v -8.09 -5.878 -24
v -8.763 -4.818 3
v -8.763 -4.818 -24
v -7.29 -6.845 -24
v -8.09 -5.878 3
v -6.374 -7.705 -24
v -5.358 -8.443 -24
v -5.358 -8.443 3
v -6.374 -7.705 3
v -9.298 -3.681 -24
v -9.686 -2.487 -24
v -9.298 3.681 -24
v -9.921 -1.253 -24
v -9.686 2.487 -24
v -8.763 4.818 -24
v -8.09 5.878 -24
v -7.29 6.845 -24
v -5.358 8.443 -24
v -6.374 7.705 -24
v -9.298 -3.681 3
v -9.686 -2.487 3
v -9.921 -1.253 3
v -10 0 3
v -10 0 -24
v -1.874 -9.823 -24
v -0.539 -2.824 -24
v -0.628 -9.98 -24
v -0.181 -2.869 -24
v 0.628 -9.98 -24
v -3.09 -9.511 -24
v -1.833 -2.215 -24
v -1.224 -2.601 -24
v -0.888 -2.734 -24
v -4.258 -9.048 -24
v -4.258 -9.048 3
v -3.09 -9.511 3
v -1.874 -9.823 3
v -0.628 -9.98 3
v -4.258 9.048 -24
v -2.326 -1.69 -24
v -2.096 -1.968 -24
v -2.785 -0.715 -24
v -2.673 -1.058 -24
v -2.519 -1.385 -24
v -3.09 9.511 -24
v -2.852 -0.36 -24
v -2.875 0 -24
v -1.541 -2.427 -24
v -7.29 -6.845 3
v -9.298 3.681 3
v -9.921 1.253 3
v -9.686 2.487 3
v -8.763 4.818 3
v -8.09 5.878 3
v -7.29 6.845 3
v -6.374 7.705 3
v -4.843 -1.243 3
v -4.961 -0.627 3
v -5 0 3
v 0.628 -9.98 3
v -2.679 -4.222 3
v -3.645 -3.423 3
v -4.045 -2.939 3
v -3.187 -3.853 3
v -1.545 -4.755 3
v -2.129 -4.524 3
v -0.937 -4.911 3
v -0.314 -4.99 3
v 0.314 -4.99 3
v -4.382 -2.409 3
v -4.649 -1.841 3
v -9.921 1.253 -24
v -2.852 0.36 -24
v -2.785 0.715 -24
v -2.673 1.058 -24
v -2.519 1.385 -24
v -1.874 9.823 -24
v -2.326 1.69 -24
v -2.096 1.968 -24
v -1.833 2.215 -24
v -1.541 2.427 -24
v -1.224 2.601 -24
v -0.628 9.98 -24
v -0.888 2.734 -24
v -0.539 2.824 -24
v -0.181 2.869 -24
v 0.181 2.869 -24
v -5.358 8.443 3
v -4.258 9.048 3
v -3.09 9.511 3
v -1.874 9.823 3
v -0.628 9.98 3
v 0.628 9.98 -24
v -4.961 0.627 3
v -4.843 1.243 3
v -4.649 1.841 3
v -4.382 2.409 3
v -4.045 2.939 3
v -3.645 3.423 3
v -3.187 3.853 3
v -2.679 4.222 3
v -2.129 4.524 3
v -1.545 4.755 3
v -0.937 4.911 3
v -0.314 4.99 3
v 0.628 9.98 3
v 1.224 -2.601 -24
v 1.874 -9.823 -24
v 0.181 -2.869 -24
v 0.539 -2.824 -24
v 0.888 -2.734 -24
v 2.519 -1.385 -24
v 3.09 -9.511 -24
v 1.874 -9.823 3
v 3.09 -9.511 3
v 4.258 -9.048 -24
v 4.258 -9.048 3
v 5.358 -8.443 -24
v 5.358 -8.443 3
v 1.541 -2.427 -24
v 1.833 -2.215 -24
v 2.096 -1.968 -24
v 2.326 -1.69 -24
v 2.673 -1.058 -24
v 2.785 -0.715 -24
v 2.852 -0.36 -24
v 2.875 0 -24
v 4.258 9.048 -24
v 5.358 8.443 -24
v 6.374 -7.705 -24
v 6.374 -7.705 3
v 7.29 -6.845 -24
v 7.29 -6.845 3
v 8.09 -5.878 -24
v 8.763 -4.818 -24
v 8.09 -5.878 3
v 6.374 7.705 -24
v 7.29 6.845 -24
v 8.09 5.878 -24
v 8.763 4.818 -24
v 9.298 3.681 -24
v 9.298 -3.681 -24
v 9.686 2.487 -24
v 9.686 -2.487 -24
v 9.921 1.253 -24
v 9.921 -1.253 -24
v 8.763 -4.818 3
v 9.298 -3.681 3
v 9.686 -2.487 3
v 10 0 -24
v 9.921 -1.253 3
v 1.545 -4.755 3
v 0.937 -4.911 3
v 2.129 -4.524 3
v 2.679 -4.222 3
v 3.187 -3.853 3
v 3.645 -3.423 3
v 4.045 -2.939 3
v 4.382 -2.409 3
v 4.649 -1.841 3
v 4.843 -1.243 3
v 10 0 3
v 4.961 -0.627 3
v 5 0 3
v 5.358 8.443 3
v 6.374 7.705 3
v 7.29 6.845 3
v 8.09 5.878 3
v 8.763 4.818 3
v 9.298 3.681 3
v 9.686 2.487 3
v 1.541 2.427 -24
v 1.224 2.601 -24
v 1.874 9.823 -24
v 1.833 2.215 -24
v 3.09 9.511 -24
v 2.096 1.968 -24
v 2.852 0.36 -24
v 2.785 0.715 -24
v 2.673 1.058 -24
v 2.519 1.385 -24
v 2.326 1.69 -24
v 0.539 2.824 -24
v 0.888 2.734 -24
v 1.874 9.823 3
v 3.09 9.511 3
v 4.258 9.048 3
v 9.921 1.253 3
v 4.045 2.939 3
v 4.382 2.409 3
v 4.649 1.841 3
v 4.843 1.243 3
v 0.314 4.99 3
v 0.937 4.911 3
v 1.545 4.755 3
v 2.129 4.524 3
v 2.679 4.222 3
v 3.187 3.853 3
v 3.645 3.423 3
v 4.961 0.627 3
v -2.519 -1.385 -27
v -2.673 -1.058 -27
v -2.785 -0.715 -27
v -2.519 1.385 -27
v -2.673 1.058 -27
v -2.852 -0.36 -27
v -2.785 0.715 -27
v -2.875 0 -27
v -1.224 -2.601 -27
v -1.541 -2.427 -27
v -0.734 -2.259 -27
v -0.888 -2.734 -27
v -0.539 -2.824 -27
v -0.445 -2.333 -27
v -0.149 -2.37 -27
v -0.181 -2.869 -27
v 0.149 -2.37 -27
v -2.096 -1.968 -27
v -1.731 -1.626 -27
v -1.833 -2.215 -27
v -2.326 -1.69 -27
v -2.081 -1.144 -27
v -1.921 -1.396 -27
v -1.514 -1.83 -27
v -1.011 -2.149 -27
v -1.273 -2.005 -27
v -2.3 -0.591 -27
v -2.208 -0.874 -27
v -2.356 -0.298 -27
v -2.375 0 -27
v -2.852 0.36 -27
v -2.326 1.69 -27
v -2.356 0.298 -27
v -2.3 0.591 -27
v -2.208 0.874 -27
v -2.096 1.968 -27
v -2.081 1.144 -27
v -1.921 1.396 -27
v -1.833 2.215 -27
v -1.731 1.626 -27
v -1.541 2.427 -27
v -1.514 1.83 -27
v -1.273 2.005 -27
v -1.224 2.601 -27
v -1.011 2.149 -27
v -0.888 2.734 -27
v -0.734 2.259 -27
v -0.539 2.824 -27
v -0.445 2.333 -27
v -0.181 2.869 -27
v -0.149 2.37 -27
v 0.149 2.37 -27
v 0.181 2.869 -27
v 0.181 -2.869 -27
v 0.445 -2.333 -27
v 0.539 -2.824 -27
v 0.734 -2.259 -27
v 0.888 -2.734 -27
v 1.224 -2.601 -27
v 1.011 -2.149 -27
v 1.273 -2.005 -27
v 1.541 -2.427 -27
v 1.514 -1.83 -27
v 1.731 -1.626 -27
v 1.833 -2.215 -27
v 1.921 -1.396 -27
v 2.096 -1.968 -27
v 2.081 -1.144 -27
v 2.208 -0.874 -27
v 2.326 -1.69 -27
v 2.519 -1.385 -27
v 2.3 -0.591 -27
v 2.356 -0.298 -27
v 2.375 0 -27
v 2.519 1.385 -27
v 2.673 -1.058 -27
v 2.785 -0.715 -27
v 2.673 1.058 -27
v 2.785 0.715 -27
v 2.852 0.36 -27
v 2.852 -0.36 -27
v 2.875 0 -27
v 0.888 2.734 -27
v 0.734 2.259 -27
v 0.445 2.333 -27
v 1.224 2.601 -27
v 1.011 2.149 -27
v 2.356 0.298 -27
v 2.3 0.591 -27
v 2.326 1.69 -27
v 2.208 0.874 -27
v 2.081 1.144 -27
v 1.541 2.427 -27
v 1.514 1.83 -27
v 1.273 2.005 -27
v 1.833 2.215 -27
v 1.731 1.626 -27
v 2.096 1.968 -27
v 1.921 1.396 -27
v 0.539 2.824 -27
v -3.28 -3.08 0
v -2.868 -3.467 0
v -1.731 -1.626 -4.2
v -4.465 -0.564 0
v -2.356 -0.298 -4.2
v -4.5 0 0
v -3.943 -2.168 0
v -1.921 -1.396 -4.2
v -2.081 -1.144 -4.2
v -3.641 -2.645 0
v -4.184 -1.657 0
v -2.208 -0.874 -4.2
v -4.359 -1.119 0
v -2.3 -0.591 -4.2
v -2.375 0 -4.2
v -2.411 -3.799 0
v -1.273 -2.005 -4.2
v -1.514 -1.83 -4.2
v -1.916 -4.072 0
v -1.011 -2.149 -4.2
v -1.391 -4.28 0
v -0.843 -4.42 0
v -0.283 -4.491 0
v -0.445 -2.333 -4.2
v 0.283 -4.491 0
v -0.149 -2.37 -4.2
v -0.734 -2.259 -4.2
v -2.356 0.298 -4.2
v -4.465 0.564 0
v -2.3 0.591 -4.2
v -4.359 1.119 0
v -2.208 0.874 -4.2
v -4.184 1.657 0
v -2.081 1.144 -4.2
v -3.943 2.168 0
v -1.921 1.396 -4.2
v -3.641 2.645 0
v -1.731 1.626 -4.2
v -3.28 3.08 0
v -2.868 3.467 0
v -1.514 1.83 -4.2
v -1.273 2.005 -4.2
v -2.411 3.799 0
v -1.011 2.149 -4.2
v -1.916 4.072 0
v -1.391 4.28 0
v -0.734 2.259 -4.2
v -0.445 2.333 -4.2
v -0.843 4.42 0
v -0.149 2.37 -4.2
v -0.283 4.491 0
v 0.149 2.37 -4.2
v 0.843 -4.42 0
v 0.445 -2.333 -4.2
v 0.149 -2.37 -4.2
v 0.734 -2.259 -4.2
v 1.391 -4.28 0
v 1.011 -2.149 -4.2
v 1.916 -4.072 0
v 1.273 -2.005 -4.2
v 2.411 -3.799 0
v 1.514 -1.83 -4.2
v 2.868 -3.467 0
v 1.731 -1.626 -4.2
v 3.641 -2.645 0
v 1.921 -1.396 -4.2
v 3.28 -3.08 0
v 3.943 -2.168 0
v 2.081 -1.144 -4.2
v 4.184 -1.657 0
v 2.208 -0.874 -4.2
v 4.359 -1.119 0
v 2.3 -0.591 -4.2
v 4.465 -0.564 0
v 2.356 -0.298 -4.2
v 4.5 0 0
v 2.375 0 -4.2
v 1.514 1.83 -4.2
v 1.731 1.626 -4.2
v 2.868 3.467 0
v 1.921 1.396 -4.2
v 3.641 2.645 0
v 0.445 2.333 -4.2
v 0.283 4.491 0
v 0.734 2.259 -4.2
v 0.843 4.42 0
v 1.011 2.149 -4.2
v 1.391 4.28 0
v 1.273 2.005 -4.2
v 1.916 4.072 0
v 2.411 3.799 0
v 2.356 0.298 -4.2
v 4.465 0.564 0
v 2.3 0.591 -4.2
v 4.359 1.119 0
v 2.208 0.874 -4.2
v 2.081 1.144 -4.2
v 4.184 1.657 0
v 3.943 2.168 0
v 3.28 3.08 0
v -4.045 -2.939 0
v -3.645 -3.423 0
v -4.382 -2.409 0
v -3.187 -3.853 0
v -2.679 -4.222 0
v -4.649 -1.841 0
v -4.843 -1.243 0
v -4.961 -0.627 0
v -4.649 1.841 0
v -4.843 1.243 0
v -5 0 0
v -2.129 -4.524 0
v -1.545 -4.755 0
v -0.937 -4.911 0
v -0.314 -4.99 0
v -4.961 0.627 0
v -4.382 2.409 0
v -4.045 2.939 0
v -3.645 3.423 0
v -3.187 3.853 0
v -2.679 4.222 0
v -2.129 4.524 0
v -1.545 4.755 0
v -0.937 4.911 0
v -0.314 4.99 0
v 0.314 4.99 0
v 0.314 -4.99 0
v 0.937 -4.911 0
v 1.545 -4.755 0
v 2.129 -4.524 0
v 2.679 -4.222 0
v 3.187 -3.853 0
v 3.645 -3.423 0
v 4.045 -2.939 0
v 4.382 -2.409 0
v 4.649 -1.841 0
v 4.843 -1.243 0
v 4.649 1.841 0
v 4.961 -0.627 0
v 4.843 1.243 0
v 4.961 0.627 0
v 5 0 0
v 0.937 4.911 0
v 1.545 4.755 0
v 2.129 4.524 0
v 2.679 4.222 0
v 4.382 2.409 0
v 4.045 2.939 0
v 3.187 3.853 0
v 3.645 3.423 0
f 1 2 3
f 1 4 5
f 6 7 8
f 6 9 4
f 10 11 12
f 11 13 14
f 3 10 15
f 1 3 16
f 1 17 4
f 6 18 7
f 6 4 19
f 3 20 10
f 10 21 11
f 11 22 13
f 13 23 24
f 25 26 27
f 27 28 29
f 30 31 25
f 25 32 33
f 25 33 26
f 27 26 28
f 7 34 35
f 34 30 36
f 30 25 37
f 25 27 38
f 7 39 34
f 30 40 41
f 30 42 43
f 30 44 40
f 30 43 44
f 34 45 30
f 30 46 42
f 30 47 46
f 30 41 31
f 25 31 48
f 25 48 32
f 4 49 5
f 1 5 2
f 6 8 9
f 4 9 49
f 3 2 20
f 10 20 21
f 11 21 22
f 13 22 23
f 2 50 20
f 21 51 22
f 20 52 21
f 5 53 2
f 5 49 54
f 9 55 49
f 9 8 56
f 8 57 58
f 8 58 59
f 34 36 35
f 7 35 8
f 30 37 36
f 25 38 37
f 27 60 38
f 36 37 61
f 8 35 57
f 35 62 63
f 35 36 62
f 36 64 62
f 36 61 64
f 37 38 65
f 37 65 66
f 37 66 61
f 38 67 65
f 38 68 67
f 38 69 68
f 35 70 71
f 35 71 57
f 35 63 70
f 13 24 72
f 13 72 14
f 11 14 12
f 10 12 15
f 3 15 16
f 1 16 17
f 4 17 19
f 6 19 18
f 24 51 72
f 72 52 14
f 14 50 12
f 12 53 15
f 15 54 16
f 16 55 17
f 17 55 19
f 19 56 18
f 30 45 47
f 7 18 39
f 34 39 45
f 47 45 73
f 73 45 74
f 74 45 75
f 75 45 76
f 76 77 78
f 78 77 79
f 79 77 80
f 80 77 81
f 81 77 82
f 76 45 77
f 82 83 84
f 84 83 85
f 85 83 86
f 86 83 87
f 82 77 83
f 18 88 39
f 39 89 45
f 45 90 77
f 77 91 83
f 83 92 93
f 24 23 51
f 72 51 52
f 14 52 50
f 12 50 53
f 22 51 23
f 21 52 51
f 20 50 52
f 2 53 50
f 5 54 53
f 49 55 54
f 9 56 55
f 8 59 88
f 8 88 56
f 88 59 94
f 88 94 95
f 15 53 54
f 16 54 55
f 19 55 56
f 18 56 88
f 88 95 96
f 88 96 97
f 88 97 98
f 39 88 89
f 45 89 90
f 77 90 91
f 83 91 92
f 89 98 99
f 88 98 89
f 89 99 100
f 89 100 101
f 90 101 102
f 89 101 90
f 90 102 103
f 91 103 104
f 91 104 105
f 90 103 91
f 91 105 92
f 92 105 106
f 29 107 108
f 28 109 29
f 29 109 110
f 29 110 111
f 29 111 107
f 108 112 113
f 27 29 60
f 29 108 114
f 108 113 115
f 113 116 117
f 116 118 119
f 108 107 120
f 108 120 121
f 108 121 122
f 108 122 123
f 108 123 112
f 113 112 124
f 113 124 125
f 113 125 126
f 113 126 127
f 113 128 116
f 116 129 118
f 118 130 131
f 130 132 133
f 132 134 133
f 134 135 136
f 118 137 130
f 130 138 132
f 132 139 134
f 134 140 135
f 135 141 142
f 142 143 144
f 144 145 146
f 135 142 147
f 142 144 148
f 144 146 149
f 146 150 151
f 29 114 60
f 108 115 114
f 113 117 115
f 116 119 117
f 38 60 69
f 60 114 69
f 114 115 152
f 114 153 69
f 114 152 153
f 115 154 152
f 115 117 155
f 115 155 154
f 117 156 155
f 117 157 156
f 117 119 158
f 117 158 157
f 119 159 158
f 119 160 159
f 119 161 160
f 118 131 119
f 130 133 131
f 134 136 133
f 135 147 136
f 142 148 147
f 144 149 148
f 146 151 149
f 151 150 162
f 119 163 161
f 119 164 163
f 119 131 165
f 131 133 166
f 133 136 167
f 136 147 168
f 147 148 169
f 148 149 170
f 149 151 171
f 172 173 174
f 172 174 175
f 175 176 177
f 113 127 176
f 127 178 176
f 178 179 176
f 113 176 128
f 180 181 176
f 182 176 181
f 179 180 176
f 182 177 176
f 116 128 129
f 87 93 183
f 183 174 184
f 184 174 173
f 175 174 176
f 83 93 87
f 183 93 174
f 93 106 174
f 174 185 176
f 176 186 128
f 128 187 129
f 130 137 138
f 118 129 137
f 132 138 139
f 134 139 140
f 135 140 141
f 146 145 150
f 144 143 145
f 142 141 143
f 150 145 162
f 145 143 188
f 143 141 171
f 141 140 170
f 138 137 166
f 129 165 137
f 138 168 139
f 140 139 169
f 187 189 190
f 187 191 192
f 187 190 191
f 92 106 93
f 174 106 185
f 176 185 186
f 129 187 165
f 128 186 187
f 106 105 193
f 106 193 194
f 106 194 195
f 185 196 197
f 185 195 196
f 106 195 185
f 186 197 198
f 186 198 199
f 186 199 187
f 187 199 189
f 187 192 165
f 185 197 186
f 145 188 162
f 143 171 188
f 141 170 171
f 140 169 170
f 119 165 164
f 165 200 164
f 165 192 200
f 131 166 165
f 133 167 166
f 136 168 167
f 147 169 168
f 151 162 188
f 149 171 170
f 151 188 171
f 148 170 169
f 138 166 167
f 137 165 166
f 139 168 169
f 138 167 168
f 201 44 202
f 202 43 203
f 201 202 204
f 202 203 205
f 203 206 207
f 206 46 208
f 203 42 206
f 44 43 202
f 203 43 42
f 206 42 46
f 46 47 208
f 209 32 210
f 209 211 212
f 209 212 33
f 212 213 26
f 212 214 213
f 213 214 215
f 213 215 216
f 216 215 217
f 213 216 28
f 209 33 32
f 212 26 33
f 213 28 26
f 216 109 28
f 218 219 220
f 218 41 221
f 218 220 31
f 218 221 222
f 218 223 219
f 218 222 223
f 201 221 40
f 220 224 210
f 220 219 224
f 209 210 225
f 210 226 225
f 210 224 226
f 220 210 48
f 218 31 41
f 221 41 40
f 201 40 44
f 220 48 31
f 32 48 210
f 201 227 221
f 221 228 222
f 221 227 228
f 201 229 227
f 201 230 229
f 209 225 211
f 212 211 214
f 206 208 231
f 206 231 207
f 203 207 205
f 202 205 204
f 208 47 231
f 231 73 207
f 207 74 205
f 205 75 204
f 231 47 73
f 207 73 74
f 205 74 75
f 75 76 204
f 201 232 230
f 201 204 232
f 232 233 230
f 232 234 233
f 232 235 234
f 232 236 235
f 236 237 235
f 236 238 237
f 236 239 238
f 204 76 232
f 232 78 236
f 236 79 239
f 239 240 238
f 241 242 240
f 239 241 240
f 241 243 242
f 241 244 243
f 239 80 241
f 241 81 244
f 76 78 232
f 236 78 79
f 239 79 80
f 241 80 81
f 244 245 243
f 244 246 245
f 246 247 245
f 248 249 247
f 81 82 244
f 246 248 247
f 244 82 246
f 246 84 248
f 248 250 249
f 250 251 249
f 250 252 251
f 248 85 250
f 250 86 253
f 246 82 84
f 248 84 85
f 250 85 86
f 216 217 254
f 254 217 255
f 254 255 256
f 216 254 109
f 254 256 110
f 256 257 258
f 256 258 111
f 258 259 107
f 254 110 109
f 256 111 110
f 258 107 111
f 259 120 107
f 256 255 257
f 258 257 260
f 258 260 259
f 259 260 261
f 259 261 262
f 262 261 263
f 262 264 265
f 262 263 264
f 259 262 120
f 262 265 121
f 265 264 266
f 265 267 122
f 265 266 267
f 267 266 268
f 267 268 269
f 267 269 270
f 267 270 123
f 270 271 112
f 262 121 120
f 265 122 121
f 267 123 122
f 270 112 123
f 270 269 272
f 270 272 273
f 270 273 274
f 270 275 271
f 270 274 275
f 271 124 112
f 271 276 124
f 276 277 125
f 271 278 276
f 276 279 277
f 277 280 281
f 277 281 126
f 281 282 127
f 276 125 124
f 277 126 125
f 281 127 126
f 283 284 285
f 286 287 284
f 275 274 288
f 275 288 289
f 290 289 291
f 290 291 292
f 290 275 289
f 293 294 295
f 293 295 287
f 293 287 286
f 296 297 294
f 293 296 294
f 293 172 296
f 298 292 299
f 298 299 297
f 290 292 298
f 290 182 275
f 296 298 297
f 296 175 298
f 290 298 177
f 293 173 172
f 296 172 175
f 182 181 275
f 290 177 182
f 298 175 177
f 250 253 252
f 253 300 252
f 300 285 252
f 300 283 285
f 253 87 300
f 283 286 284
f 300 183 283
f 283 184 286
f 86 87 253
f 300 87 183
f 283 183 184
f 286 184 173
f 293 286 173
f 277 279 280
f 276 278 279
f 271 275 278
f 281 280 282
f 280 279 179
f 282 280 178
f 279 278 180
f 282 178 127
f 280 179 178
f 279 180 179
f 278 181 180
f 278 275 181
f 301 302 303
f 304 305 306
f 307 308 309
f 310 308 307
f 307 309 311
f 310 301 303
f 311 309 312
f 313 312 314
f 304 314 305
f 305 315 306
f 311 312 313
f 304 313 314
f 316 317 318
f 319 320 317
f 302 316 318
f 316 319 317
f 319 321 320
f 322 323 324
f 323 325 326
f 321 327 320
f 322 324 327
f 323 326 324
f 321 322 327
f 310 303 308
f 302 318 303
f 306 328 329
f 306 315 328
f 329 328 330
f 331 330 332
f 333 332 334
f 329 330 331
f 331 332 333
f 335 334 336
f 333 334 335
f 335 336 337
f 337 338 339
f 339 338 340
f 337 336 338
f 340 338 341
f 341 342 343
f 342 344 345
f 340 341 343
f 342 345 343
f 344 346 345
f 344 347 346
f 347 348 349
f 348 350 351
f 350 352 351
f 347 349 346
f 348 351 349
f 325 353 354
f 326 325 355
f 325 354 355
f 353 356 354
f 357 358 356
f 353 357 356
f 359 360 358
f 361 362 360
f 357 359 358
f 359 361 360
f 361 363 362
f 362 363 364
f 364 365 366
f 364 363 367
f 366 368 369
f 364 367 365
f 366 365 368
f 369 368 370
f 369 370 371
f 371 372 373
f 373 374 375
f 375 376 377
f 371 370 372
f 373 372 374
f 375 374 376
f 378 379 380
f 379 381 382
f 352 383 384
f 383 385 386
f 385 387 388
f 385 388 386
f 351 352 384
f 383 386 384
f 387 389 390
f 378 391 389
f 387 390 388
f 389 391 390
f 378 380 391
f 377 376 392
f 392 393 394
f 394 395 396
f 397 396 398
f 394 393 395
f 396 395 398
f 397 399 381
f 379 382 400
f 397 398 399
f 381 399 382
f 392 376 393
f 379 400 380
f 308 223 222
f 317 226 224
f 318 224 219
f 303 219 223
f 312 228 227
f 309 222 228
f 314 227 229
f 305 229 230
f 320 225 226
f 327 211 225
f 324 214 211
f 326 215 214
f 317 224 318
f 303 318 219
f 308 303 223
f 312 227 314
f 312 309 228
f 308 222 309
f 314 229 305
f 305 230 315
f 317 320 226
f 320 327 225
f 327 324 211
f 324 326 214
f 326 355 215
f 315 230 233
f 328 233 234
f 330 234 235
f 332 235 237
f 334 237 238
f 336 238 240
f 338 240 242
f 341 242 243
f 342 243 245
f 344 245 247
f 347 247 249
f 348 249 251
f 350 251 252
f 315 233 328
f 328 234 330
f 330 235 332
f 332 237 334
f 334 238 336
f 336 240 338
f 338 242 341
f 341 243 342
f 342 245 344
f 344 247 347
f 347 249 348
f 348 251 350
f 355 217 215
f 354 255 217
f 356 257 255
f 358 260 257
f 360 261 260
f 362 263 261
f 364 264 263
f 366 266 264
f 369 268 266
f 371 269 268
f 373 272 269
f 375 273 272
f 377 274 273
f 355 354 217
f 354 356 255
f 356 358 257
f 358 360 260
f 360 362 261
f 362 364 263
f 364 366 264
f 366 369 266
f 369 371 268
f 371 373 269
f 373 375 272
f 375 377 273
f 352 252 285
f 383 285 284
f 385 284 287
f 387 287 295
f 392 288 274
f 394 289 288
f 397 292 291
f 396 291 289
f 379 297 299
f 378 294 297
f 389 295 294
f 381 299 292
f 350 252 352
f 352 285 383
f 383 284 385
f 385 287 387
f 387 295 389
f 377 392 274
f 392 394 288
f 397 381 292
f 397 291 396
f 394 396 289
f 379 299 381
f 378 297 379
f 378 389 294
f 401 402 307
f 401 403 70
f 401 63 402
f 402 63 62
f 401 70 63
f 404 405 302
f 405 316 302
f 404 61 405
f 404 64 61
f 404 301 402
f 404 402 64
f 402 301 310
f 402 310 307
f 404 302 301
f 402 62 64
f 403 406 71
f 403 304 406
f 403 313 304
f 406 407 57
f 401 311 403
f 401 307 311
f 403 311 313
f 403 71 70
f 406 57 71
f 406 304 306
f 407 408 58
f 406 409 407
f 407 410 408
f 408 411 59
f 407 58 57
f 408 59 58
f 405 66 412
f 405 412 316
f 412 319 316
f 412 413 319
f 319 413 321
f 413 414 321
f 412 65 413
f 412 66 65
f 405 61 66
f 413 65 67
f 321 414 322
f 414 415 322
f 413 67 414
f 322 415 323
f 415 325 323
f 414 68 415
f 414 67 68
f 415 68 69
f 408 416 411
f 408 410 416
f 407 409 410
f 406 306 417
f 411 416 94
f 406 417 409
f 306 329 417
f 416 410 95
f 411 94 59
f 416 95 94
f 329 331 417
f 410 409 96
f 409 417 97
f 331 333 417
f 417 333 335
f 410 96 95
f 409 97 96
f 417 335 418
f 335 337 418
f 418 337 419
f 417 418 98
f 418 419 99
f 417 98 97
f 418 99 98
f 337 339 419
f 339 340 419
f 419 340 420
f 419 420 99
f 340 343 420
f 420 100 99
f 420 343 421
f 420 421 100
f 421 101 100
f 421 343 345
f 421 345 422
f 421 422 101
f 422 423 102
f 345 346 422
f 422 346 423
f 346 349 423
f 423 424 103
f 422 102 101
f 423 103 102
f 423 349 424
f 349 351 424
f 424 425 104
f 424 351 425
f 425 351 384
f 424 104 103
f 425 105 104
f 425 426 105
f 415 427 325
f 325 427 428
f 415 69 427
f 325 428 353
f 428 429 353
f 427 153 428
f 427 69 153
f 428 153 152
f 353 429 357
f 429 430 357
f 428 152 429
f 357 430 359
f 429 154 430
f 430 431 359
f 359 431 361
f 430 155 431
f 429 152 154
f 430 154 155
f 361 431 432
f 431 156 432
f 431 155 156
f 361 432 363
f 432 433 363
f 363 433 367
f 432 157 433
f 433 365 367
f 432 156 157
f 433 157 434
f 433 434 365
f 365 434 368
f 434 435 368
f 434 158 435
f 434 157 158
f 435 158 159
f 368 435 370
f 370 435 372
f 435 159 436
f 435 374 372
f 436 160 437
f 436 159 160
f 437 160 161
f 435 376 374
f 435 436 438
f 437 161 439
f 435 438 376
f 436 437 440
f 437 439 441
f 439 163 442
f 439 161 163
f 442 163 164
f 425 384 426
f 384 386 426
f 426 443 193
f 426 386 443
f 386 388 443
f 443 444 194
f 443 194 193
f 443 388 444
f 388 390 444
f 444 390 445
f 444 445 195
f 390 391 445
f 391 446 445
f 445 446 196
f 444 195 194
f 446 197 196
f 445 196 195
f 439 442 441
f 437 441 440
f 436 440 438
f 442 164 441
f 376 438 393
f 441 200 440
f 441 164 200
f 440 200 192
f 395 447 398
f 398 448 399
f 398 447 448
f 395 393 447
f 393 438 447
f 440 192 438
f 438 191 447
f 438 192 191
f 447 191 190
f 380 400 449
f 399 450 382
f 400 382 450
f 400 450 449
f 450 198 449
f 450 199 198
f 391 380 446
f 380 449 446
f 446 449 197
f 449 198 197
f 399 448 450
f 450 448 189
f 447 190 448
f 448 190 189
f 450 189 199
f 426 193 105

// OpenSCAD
$fn = 50;

difference() {
	union() {
		translate(v = [0, 0, -24.0]) {
			cylinder(h = 27, r = 10.0);
		}
		#translate(v = [0, 0, -27.0]) {
			cylinder(h = 27, r = 2.875);
		}
	}
	union() {
		translate(v = [0, 0, 0]) {
			rotate(a = [0, 0, 0]) {
				difference() {
					union() {
						translate(v = [0, 0, -27.0]) {
							cylinder(h = 27, r = 2.25);
						}
						translate(v = [0, 0, -4.2]) {
							cylinder(h = 4.2, r1 = 2.375, r2 = 4.5);
						}
						translate(v = [0, 0, -27.0]) {
							cylinder(h = 27, r = 2.375);
						}
						translate(v = [0, 0, -27.0]) {
							cylinder(h = 27, r = 2.25);
						}
					}
					union();
				}
			}
		}
		#cylinder(h = 3, r = 5.0);
	}
}
